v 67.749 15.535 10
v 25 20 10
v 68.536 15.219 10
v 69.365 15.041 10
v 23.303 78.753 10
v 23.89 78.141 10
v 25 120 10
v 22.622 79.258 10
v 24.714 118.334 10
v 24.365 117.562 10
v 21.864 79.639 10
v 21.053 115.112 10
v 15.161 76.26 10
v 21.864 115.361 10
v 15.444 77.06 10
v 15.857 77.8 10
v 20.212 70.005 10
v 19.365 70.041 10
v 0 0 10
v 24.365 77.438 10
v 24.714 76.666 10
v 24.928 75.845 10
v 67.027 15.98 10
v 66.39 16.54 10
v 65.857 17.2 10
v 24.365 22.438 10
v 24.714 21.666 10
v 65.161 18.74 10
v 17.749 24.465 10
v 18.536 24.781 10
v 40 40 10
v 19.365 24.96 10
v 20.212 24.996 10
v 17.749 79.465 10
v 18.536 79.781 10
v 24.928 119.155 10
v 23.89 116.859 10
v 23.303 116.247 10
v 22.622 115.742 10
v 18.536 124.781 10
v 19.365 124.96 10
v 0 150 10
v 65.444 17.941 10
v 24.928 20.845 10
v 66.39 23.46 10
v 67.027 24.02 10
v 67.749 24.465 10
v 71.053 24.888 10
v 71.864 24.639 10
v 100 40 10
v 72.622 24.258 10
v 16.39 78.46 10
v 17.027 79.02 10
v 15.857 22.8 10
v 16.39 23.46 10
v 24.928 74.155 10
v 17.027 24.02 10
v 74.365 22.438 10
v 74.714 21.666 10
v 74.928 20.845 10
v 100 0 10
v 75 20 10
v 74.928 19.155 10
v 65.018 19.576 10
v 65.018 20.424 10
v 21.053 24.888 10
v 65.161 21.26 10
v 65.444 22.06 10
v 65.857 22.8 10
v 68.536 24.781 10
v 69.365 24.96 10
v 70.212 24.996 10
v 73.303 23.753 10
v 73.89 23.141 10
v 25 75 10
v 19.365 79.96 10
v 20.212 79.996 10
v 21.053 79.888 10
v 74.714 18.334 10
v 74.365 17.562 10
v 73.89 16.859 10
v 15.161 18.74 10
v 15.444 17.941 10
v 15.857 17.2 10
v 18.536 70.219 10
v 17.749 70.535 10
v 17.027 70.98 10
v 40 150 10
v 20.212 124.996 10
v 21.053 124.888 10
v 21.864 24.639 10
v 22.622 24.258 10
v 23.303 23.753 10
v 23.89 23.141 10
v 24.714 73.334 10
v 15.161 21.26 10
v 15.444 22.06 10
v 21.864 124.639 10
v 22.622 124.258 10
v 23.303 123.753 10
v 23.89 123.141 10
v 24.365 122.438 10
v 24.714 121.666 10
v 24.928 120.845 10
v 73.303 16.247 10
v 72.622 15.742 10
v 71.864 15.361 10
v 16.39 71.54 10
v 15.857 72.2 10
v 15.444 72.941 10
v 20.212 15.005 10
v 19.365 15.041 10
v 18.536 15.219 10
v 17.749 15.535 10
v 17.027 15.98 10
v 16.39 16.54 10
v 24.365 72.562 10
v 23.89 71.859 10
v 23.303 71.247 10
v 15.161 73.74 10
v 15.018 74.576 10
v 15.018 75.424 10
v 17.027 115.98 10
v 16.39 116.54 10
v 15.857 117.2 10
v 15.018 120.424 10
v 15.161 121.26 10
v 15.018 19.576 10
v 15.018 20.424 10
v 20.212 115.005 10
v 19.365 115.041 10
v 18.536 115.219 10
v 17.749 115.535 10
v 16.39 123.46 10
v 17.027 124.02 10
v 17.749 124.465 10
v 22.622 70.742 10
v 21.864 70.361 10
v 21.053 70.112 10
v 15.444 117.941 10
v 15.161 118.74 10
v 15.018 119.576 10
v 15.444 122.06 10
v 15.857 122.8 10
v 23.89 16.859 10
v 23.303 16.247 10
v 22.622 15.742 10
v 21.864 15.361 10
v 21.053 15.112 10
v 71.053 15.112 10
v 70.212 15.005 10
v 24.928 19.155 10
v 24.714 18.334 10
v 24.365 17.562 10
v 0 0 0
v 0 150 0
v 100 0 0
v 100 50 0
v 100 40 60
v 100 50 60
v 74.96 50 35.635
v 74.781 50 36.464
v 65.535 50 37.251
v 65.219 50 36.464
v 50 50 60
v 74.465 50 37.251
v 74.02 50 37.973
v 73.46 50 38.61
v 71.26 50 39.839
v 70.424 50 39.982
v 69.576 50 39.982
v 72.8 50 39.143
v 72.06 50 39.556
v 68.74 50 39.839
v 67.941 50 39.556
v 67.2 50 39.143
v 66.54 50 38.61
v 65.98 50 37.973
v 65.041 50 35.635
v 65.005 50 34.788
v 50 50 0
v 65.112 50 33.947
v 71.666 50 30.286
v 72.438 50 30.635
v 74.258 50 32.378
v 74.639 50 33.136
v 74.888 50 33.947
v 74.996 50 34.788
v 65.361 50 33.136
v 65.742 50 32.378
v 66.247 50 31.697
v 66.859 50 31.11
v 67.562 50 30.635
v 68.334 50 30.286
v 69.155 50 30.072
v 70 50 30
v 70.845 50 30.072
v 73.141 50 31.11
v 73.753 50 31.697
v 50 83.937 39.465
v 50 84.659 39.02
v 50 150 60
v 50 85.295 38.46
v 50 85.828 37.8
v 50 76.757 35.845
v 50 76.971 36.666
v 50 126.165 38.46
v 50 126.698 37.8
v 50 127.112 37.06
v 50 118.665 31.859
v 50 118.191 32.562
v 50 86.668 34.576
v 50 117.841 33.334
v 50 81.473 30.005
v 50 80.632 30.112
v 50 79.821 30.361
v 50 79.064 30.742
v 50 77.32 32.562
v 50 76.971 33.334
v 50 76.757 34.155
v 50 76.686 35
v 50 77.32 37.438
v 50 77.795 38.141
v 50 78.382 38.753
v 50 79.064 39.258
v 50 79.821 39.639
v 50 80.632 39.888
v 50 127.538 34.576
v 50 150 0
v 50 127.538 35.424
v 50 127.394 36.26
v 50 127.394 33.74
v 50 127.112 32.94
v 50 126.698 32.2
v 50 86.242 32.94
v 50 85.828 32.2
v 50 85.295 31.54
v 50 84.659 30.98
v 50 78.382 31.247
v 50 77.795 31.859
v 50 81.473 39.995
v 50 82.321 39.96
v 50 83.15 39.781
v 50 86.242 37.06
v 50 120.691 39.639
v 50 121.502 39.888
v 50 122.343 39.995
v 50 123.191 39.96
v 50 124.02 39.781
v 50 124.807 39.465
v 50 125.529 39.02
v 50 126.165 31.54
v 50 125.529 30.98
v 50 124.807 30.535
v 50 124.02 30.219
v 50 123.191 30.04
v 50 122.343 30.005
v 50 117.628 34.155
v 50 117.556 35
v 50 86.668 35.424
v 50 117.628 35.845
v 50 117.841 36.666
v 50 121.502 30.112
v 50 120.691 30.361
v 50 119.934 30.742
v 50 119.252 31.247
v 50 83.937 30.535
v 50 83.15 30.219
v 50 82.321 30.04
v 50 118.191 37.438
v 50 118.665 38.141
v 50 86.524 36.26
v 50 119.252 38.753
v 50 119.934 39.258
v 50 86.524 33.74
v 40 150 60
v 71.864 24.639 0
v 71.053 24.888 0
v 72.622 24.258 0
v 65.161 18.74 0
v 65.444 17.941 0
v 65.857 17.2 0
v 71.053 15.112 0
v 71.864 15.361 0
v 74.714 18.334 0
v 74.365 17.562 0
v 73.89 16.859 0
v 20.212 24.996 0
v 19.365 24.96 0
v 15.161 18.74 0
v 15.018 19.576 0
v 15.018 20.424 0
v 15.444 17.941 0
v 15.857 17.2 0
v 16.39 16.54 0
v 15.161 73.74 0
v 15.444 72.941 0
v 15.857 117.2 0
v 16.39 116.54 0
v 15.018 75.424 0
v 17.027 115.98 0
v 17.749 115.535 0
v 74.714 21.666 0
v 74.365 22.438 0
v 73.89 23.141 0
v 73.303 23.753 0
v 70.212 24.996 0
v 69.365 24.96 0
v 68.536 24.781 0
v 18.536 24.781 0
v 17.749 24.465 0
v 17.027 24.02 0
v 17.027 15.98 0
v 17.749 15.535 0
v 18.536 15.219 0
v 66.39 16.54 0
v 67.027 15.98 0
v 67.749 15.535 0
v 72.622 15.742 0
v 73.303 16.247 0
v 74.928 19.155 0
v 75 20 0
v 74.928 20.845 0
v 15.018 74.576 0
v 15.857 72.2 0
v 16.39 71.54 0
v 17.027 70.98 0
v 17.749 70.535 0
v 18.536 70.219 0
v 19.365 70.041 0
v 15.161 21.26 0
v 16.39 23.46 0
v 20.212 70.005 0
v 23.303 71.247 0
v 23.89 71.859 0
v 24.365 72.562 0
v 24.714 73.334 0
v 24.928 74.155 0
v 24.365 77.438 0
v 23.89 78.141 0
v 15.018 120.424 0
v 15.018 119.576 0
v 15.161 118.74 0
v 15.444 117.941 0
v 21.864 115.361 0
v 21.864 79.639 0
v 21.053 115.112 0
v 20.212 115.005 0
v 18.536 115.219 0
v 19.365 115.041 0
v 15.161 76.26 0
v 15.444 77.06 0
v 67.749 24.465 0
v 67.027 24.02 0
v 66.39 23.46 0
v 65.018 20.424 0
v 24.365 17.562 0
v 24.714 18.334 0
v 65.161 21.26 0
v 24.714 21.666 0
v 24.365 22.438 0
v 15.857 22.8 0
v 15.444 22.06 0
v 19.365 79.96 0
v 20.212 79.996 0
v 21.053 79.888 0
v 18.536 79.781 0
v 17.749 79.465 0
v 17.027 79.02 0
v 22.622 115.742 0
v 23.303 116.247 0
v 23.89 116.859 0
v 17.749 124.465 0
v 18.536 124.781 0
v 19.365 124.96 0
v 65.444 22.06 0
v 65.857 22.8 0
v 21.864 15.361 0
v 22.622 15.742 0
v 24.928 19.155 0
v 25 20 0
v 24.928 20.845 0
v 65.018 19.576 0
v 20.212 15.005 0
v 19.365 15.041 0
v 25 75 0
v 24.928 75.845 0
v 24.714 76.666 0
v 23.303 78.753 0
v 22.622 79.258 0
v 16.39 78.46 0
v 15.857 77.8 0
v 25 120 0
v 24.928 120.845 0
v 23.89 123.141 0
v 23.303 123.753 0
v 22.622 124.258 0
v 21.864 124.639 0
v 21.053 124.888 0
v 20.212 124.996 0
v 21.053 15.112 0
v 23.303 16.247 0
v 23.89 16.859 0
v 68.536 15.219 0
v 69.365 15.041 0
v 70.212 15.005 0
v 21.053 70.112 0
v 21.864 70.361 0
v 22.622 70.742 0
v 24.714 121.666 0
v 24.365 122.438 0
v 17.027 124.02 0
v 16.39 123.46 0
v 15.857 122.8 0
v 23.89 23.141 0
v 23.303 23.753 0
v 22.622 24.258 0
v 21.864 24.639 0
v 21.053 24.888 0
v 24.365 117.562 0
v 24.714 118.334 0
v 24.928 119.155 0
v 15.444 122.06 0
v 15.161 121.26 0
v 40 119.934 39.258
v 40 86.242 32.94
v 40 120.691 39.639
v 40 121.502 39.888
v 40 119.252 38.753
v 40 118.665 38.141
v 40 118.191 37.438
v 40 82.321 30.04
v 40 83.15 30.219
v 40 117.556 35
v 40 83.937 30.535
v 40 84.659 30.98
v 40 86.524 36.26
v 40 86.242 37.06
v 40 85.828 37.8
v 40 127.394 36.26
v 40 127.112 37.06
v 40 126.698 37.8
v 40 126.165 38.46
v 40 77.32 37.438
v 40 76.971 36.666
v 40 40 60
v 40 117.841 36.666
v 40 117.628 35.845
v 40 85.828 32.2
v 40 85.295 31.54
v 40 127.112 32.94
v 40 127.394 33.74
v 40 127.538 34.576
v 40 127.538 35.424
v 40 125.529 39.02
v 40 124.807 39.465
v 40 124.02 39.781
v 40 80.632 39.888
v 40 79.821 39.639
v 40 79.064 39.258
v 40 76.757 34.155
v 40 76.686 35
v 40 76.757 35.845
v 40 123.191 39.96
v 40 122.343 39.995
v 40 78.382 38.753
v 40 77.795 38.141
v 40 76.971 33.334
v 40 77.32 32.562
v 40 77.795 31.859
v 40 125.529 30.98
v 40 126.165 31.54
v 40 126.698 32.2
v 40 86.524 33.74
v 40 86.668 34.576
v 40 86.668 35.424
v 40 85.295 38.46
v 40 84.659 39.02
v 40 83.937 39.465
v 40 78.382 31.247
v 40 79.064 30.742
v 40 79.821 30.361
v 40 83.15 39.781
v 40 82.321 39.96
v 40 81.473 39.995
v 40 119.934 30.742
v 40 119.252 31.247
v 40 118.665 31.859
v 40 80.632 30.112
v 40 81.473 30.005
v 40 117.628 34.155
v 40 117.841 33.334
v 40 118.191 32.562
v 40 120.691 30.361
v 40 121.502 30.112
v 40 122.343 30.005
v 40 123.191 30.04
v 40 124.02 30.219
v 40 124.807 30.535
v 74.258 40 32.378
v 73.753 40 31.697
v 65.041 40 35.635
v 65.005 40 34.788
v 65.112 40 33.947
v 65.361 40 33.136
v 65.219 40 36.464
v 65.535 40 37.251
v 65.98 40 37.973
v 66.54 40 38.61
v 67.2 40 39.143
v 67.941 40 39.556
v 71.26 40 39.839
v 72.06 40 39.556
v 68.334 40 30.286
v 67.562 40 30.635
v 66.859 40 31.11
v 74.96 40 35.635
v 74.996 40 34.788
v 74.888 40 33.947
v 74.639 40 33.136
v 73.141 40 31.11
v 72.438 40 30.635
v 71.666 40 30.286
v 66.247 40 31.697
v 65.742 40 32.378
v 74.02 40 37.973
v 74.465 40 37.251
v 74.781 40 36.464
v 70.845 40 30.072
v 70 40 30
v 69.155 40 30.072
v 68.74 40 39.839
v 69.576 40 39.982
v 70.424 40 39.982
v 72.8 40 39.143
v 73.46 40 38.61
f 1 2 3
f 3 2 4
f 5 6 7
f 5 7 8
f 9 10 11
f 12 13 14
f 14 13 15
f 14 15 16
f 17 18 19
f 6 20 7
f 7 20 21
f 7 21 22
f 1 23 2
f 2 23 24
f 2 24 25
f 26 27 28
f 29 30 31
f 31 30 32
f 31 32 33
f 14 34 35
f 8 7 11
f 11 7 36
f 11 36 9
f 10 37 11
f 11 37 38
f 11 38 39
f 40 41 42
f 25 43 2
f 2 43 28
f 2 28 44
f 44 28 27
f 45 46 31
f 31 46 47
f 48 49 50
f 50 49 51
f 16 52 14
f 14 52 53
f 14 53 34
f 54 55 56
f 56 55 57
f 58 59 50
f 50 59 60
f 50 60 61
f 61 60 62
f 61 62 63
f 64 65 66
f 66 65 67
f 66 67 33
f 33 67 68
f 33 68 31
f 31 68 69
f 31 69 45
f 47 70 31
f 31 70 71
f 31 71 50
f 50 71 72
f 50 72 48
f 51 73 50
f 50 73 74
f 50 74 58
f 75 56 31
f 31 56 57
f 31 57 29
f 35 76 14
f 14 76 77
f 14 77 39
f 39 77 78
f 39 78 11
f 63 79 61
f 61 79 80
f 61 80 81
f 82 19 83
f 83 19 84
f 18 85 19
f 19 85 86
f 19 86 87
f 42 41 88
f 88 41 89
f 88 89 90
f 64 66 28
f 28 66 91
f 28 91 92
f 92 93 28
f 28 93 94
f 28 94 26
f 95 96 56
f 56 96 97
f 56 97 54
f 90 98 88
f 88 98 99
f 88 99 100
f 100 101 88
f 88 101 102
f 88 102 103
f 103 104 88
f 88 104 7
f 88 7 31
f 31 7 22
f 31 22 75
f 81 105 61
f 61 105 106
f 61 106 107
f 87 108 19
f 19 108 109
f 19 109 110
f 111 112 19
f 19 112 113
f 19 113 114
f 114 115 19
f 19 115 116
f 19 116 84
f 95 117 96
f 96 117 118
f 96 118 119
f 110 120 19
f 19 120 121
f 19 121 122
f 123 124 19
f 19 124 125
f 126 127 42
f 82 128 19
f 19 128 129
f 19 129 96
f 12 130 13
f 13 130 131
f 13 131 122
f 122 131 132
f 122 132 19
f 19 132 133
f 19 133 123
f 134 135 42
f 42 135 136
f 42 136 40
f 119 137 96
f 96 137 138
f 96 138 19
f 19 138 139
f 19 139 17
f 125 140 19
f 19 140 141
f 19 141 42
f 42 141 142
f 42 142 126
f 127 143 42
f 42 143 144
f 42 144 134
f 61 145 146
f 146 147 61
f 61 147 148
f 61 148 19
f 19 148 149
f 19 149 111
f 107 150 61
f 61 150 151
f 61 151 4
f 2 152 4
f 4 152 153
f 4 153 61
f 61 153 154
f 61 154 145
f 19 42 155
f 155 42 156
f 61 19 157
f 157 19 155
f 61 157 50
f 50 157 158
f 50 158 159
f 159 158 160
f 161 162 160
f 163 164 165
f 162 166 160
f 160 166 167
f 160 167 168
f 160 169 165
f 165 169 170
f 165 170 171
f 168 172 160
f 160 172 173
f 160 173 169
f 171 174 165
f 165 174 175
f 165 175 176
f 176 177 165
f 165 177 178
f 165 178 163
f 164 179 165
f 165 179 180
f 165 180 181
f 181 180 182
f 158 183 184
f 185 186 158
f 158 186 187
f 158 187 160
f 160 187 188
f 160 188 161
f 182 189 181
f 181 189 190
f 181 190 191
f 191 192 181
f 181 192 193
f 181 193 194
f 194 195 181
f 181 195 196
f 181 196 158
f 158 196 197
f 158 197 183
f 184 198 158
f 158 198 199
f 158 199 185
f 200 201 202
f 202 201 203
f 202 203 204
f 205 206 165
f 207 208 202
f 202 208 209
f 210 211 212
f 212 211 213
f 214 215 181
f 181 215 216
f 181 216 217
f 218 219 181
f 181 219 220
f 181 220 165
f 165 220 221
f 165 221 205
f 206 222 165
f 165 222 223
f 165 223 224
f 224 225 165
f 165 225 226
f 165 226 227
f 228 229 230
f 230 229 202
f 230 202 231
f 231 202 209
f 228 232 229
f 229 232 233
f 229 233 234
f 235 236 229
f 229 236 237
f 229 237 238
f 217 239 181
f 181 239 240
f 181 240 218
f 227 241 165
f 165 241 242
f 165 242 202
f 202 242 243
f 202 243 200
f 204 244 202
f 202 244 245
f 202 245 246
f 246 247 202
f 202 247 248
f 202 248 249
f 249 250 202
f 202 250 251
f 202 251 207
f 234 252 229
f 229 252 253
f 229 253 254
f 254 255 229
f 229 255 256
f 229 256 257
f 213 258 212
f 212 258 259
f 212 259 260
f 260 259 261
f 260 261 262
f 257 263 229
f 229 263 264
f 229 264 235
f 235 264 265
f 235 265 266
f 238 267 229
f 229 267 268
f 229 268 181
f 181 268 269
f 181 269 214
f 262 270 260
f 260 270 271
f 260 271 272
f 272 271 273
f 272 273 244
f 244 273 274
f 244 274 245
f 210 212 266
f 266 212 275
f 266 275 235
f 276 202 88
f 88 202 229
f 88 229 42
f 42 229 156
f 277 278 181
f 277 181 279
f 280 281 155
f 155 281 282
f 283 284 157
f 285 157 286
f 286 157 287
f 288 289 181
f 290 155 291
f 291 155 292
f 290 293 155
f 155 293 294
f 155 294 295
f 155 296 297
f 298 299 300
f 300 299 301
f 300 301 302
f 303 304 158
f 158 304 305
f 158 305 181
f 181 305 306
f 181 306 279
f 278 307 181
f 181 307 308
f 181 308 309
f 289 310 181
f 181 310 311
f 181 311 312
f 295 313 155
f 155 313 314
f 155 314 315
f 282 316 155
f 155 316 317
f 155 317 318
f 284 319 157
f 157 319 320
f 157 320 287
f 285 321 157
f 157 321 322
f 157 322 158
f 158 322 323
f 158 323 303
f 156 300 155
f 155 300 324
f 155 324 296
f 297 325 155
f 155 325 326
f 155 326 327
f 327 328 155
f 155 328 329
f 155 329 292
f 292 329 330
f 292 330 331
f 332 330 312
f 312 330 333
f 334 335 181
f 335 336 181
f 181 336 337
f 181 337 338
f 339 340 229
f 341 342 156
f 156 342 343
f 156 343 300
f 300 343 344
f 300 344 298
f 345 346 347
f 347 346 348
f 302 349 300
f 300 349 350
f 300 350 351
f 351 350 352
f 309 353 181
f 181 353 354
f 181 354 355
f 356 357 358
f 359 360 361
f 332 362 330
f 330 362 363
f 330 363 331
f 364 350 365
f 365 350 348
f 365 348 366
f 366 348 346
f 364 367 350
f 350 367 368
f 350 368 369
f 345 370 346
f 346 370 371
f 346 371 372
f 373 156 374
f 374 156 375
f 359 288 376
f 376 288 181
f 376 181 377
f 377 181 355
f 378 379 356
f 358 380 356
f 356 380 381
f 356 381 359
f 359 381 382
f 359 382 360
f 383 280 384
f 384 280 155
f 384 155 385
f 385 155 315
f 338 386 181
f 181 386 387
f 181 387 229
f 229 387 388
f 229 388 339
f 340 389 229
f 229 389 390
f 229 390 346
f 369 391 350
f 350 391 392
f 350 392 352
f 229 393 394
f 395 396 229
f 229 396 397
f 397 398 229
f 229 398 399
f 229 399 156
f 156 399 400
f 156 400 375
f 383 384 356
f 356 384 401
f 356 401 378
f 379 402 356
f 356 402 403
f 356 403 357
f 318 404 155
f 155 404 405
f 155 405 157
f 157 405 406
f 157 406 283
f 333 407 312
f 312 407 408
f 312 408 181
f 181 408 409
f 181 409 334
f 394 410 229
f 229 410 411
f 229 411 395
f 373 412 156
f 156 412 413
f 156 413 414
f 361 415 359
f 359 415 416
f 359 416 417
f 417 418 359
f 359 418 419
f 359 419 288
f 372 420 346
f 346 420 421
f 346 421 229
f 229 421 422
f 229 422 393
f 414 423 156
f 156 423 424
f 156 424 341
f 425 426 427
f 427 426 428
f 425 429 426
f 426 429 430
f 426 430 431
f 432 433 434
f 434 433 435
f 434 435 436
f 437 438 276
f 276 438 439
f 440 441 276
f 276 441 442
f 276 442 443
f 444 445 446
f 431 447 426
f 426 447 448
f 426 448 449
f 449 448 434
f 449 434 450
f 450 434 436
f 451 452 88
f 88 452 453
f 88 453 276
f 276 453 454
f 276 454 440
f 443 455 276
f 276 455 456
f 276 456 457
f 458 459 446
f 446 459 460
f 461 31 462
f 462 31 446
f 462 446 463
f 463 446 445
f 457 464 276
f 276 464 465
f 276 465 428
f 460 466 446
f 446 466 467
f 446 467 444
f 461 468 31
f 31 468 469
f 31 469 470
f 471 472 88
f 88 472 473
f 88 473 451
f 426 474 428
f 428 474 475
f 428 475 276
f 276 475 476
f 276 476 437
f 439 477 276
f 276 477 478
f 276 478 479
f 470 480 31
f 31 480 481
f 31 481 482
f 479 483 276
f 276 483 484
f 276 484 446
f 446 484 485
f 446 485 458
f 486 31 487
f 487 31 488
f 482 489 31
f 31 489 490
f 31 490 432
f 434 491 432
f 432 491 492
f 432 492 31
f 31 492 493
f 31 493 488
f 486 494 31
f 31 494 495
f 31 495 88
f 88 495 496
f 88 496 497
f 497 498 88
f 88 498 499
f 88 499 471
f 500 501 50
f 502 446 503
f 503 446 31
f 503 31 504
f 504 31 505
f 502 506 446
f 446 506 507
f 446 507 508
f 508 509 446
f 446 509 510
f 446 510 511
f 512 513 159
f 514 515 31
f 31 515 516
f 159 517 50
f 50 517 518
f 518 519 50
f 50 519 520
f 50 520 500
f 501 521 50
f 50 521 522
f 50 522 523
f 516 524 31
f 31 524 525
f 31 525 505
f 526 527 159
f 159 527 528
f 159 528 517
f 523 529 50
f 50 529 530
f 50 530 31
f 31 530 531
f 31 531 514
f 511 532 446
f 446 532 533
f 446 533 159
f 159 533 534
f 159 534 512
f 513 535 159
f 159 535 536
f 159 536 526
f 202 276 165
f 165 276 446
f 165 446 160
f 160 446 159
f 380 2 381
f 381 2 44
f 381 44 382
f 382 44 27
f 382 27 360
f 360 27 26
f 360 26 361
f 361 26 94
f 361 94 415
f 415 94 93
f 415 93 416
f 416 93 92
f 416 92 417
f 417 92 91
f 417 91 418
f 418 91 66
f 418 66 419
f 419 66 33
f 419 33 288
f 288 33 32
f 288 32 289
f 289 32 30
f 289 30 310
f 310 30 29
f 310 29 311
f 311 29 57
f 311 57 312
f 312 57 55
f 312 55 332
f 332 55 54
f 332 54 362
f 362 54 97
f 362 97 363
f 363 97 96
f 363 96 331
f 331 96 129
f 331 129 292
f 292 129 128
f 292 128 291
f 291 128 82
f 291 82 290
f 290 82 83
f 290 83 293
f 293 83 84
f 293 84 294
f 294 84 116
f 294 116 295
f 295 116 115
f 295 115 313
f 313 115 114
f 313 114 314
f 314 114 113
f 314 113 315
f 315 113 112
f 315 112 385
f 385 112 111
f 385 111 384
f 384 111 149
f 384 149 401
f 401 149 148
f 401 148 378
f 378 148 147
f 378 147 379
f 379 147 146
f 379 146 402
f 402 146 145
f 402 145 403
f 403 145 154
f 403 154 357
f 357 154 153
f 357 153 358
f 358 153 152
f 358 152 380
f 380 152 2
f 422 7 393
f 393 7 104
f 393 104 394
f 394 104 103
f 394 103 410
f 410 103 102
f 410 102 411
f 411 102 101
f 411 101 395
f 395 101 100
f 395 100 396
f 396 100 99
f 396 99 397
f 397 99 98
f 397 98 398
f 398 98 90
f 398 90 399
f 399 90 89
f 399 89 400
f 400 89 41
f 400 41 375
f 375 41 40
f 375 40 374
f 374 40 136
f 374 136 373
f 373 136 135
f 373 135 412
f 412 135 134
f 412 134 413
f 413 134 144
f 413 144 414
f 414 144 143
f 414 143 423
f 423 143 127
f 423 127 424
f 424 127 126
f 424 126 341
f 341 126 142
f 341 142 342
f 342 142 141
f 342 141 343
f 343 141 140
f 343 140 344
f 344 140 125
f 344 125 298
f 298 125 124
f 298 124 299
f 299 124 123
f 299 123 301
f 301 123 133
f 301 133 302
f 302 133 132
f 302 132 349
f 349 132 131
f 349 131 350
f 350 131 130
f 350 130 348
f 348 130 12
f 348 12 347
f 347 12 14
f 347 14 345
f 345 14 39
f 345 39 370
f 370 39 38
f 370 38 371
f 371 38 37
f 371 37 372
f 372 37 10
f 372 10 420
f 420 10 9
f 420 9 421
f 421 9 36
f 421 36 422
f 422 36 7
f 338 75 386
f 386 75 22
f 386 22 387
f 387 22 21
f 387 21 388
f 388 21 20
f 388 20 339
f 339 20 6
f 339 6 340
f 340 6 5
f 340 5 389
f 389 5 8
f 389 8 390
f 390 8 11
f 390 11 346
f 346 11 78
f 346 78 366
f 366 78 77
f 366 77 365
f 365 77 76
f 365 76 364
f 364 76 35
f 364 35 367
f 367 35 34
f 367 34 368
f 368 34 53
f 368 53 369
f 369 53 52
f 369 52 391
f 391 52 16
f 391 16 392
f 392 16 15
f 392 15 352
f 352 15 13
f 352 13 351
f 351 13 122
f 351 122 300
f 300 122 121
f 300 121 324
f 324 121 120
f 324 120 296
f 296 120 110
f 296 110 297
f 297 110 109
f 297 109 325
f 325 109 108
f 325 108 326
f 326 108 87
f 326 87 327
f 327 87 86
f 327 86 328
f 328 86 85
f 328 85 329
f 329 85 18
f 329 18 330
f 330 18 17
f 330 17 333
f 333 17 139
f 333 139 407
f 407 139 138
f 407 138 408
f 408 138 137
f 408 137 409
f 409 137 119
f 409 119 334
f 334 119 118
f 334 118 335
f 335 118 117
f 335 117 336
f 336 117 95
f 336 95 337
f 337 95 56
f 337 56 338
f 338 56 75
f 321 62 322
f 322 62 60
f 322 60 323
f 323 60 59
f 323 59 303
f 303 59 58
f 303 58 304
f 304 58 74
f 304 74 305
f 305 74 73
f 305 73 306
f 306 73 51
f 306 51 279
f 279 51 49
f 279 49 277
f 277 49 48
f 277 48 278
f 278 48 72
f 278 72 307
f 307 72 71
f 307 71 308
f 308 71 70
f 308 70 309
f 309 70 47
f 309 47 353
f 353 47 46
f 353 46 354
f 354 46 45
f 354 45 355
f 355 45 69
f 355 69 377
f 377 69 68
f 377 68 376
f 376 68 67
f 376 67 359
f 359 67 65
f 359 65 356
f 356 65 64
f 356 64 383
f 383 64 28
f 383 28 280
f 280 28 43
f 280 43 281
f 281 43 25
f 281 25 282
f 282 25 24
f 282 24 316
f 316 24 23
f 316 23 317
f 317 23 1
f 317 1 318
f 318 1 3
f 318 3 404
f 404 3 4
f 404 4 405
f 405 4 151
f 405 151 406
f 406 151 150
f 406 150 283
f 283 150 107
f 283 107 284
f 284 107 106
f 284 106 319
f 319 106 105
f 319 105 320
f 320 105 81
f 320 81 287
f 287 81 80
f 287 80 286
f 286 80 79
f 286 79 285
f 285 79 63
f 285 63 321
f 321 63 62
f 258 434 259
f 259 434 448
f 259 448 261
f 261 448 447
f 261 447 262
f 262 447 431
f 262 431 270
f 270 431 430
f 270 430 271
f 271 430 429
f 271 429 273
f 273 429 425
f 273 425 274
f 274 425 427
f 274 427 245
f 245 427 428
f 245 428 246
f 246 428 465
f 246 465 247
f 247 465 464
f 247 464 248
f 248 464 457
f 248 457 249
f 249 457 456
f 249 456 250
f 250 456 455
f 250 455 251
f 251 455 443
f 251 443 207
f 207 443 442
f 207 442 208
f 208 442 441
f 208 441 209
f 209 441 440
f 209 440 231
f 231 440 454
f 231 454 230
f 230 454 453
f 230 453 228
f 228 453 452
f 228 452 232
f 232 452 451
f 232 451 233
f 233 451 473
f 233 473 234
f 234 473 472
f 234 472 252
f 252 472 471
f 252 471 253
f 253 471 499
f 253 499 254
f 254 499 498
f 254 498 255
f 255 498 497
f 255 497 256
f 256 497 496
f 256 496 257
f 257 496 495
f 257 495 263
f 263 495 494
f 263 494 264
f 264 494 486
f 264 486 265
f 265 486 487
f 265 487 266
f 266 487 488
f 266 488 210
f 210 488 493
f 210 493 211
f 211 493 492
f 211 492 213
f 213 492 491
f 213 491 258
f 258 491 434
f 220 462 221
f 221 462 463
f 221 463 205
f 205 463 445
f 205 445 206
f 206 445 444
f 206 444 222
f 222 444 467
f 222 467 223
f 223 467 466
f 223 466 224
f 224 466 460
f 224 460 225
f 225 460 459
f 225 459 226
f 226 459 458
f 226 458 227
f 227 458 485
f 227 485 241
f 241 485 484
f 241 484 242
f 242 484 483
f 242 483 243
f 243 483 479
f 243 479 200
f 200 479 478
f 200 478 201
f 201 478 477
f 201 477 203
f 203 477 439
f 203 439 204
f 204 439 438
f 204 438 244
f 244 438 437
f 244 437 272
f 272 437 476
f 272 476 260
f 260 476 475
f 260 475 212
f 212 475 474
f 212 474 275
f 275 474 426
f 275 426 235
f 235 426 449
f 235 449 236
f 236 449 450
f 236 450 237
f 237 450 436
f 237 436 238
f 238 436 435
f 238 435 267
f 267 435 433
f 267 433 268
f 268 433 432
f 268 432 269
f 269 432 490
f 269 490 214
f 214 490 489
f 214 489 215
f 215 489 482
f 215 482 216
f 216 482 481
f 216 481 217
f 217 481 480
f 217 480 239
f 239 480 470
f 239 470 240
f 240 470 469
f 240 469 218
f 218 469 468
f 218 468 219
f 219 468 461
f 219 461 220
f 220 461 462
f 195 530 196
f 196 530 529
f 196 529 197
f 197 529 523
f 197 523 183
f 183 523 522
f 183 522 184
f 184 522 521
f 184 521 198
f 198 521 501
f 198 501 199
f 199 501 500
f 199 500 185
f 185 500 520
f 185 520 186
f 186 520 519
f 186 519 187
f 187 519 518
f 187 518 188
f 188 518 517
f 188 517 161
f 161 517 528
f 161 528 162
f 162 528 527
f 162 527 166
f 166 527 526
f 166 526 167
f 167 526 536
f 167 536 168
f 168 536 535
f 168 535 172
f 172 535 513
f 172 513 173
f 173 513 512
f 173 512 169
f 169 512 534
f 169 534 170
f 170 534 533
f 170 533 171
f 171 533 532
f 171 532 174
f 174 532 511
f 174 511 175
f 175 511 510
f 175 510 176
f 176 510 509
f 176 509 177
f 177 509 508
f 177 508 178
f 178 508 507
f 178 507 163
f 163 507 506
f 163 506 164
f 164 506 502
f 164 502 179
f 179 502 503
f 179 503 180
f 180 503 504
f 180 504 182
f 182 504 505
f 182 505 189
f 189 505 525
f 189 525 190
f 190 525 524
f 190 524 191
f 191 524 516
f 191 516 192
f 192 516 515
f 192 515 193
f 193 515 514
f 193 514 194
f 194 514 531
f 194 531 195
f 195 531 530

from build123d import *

# Parameters (mm, degrees)
BOSS_EXTRUDE1_DEPTH = 10
BOSS_EXTRUDE2_DEPTH = 50
SKETCH3_R           = 5
CUT_EXTRUDE1_DEPTH  = 188.082869339
SKETCH4_R           = 5
CUT_EXTRUDE2_DEPTH  = 10
SKETCH5_R           = 5
CUT_EXTRUDE3_DEPTH  = 10


with BuildPart() as part:
    # Sketch1 → Boss-Extrude1 (new body)
    with BuildSketch(Plane.XY):
        Polygon((0, 150), (50, 150), (50, 50), (100, 50), (100, 0), (0, 0), align=None)
    extrude(amount=BOSS_EXTRUDE1_DEPTH)

    # Sketch2 → Boss-Extrude2 (add)
    with BuildSketch(Plane.XY.offset(10)):
        Polygon((40, 150), (40, 40), (100, 40), (100, 50), (50, 50), (50, 150), align=None)
    extrude(amount=BOSS_EXTRUDE2_DEPTH)

    # Sketch3 → Cut-Extrude1 (cut, through all)
    with BuildSketch(Plane.XY.offset(10)):
        with Locations((20, 20)):
            Circle(SKETCH3_R)
        with Locations((20, 120)):
            Circle(SKETCH3_R)
        with Locations((20, 75)):
            Circle(SKETCH3_R)
        with Locations((70, 20)):
            Circle(SKETCH3_R)
    extrude(amount=-CUT_EXTRUDE1_DEPTH, mode=Mode.SUBTRACT)

    # Sketch4 → Cut-Extrude2 (cut)
    with BuildSketch(Plane.ZY.offset(-40)):
        with Locations(Location((35, 122.555580901, 0), (0, 0, 270))):
            Circle(SKETCH4_R)
        with Locations(Location((35, 81.685491979, 0), (0, 0, 270))):
            Circle(SKETCH4_R)
    extrude(amount=-CUT_EXTRUDE2_DEPTH, mode=Mode.SUBTRACT)

    # Sketch5 → Cut-Extrude3 (cut)
    with BuildSketch(Plane.XZ.offset(-40)):
        with Locations(Location((70, 35, 0), (0, 0, 270))):
            Circle(SKETCH5_R)
    extrude(amount=-CUT_EXTRUDE3_DEPTH, mode=Mode.SUBTRACT)


solid = part.part
